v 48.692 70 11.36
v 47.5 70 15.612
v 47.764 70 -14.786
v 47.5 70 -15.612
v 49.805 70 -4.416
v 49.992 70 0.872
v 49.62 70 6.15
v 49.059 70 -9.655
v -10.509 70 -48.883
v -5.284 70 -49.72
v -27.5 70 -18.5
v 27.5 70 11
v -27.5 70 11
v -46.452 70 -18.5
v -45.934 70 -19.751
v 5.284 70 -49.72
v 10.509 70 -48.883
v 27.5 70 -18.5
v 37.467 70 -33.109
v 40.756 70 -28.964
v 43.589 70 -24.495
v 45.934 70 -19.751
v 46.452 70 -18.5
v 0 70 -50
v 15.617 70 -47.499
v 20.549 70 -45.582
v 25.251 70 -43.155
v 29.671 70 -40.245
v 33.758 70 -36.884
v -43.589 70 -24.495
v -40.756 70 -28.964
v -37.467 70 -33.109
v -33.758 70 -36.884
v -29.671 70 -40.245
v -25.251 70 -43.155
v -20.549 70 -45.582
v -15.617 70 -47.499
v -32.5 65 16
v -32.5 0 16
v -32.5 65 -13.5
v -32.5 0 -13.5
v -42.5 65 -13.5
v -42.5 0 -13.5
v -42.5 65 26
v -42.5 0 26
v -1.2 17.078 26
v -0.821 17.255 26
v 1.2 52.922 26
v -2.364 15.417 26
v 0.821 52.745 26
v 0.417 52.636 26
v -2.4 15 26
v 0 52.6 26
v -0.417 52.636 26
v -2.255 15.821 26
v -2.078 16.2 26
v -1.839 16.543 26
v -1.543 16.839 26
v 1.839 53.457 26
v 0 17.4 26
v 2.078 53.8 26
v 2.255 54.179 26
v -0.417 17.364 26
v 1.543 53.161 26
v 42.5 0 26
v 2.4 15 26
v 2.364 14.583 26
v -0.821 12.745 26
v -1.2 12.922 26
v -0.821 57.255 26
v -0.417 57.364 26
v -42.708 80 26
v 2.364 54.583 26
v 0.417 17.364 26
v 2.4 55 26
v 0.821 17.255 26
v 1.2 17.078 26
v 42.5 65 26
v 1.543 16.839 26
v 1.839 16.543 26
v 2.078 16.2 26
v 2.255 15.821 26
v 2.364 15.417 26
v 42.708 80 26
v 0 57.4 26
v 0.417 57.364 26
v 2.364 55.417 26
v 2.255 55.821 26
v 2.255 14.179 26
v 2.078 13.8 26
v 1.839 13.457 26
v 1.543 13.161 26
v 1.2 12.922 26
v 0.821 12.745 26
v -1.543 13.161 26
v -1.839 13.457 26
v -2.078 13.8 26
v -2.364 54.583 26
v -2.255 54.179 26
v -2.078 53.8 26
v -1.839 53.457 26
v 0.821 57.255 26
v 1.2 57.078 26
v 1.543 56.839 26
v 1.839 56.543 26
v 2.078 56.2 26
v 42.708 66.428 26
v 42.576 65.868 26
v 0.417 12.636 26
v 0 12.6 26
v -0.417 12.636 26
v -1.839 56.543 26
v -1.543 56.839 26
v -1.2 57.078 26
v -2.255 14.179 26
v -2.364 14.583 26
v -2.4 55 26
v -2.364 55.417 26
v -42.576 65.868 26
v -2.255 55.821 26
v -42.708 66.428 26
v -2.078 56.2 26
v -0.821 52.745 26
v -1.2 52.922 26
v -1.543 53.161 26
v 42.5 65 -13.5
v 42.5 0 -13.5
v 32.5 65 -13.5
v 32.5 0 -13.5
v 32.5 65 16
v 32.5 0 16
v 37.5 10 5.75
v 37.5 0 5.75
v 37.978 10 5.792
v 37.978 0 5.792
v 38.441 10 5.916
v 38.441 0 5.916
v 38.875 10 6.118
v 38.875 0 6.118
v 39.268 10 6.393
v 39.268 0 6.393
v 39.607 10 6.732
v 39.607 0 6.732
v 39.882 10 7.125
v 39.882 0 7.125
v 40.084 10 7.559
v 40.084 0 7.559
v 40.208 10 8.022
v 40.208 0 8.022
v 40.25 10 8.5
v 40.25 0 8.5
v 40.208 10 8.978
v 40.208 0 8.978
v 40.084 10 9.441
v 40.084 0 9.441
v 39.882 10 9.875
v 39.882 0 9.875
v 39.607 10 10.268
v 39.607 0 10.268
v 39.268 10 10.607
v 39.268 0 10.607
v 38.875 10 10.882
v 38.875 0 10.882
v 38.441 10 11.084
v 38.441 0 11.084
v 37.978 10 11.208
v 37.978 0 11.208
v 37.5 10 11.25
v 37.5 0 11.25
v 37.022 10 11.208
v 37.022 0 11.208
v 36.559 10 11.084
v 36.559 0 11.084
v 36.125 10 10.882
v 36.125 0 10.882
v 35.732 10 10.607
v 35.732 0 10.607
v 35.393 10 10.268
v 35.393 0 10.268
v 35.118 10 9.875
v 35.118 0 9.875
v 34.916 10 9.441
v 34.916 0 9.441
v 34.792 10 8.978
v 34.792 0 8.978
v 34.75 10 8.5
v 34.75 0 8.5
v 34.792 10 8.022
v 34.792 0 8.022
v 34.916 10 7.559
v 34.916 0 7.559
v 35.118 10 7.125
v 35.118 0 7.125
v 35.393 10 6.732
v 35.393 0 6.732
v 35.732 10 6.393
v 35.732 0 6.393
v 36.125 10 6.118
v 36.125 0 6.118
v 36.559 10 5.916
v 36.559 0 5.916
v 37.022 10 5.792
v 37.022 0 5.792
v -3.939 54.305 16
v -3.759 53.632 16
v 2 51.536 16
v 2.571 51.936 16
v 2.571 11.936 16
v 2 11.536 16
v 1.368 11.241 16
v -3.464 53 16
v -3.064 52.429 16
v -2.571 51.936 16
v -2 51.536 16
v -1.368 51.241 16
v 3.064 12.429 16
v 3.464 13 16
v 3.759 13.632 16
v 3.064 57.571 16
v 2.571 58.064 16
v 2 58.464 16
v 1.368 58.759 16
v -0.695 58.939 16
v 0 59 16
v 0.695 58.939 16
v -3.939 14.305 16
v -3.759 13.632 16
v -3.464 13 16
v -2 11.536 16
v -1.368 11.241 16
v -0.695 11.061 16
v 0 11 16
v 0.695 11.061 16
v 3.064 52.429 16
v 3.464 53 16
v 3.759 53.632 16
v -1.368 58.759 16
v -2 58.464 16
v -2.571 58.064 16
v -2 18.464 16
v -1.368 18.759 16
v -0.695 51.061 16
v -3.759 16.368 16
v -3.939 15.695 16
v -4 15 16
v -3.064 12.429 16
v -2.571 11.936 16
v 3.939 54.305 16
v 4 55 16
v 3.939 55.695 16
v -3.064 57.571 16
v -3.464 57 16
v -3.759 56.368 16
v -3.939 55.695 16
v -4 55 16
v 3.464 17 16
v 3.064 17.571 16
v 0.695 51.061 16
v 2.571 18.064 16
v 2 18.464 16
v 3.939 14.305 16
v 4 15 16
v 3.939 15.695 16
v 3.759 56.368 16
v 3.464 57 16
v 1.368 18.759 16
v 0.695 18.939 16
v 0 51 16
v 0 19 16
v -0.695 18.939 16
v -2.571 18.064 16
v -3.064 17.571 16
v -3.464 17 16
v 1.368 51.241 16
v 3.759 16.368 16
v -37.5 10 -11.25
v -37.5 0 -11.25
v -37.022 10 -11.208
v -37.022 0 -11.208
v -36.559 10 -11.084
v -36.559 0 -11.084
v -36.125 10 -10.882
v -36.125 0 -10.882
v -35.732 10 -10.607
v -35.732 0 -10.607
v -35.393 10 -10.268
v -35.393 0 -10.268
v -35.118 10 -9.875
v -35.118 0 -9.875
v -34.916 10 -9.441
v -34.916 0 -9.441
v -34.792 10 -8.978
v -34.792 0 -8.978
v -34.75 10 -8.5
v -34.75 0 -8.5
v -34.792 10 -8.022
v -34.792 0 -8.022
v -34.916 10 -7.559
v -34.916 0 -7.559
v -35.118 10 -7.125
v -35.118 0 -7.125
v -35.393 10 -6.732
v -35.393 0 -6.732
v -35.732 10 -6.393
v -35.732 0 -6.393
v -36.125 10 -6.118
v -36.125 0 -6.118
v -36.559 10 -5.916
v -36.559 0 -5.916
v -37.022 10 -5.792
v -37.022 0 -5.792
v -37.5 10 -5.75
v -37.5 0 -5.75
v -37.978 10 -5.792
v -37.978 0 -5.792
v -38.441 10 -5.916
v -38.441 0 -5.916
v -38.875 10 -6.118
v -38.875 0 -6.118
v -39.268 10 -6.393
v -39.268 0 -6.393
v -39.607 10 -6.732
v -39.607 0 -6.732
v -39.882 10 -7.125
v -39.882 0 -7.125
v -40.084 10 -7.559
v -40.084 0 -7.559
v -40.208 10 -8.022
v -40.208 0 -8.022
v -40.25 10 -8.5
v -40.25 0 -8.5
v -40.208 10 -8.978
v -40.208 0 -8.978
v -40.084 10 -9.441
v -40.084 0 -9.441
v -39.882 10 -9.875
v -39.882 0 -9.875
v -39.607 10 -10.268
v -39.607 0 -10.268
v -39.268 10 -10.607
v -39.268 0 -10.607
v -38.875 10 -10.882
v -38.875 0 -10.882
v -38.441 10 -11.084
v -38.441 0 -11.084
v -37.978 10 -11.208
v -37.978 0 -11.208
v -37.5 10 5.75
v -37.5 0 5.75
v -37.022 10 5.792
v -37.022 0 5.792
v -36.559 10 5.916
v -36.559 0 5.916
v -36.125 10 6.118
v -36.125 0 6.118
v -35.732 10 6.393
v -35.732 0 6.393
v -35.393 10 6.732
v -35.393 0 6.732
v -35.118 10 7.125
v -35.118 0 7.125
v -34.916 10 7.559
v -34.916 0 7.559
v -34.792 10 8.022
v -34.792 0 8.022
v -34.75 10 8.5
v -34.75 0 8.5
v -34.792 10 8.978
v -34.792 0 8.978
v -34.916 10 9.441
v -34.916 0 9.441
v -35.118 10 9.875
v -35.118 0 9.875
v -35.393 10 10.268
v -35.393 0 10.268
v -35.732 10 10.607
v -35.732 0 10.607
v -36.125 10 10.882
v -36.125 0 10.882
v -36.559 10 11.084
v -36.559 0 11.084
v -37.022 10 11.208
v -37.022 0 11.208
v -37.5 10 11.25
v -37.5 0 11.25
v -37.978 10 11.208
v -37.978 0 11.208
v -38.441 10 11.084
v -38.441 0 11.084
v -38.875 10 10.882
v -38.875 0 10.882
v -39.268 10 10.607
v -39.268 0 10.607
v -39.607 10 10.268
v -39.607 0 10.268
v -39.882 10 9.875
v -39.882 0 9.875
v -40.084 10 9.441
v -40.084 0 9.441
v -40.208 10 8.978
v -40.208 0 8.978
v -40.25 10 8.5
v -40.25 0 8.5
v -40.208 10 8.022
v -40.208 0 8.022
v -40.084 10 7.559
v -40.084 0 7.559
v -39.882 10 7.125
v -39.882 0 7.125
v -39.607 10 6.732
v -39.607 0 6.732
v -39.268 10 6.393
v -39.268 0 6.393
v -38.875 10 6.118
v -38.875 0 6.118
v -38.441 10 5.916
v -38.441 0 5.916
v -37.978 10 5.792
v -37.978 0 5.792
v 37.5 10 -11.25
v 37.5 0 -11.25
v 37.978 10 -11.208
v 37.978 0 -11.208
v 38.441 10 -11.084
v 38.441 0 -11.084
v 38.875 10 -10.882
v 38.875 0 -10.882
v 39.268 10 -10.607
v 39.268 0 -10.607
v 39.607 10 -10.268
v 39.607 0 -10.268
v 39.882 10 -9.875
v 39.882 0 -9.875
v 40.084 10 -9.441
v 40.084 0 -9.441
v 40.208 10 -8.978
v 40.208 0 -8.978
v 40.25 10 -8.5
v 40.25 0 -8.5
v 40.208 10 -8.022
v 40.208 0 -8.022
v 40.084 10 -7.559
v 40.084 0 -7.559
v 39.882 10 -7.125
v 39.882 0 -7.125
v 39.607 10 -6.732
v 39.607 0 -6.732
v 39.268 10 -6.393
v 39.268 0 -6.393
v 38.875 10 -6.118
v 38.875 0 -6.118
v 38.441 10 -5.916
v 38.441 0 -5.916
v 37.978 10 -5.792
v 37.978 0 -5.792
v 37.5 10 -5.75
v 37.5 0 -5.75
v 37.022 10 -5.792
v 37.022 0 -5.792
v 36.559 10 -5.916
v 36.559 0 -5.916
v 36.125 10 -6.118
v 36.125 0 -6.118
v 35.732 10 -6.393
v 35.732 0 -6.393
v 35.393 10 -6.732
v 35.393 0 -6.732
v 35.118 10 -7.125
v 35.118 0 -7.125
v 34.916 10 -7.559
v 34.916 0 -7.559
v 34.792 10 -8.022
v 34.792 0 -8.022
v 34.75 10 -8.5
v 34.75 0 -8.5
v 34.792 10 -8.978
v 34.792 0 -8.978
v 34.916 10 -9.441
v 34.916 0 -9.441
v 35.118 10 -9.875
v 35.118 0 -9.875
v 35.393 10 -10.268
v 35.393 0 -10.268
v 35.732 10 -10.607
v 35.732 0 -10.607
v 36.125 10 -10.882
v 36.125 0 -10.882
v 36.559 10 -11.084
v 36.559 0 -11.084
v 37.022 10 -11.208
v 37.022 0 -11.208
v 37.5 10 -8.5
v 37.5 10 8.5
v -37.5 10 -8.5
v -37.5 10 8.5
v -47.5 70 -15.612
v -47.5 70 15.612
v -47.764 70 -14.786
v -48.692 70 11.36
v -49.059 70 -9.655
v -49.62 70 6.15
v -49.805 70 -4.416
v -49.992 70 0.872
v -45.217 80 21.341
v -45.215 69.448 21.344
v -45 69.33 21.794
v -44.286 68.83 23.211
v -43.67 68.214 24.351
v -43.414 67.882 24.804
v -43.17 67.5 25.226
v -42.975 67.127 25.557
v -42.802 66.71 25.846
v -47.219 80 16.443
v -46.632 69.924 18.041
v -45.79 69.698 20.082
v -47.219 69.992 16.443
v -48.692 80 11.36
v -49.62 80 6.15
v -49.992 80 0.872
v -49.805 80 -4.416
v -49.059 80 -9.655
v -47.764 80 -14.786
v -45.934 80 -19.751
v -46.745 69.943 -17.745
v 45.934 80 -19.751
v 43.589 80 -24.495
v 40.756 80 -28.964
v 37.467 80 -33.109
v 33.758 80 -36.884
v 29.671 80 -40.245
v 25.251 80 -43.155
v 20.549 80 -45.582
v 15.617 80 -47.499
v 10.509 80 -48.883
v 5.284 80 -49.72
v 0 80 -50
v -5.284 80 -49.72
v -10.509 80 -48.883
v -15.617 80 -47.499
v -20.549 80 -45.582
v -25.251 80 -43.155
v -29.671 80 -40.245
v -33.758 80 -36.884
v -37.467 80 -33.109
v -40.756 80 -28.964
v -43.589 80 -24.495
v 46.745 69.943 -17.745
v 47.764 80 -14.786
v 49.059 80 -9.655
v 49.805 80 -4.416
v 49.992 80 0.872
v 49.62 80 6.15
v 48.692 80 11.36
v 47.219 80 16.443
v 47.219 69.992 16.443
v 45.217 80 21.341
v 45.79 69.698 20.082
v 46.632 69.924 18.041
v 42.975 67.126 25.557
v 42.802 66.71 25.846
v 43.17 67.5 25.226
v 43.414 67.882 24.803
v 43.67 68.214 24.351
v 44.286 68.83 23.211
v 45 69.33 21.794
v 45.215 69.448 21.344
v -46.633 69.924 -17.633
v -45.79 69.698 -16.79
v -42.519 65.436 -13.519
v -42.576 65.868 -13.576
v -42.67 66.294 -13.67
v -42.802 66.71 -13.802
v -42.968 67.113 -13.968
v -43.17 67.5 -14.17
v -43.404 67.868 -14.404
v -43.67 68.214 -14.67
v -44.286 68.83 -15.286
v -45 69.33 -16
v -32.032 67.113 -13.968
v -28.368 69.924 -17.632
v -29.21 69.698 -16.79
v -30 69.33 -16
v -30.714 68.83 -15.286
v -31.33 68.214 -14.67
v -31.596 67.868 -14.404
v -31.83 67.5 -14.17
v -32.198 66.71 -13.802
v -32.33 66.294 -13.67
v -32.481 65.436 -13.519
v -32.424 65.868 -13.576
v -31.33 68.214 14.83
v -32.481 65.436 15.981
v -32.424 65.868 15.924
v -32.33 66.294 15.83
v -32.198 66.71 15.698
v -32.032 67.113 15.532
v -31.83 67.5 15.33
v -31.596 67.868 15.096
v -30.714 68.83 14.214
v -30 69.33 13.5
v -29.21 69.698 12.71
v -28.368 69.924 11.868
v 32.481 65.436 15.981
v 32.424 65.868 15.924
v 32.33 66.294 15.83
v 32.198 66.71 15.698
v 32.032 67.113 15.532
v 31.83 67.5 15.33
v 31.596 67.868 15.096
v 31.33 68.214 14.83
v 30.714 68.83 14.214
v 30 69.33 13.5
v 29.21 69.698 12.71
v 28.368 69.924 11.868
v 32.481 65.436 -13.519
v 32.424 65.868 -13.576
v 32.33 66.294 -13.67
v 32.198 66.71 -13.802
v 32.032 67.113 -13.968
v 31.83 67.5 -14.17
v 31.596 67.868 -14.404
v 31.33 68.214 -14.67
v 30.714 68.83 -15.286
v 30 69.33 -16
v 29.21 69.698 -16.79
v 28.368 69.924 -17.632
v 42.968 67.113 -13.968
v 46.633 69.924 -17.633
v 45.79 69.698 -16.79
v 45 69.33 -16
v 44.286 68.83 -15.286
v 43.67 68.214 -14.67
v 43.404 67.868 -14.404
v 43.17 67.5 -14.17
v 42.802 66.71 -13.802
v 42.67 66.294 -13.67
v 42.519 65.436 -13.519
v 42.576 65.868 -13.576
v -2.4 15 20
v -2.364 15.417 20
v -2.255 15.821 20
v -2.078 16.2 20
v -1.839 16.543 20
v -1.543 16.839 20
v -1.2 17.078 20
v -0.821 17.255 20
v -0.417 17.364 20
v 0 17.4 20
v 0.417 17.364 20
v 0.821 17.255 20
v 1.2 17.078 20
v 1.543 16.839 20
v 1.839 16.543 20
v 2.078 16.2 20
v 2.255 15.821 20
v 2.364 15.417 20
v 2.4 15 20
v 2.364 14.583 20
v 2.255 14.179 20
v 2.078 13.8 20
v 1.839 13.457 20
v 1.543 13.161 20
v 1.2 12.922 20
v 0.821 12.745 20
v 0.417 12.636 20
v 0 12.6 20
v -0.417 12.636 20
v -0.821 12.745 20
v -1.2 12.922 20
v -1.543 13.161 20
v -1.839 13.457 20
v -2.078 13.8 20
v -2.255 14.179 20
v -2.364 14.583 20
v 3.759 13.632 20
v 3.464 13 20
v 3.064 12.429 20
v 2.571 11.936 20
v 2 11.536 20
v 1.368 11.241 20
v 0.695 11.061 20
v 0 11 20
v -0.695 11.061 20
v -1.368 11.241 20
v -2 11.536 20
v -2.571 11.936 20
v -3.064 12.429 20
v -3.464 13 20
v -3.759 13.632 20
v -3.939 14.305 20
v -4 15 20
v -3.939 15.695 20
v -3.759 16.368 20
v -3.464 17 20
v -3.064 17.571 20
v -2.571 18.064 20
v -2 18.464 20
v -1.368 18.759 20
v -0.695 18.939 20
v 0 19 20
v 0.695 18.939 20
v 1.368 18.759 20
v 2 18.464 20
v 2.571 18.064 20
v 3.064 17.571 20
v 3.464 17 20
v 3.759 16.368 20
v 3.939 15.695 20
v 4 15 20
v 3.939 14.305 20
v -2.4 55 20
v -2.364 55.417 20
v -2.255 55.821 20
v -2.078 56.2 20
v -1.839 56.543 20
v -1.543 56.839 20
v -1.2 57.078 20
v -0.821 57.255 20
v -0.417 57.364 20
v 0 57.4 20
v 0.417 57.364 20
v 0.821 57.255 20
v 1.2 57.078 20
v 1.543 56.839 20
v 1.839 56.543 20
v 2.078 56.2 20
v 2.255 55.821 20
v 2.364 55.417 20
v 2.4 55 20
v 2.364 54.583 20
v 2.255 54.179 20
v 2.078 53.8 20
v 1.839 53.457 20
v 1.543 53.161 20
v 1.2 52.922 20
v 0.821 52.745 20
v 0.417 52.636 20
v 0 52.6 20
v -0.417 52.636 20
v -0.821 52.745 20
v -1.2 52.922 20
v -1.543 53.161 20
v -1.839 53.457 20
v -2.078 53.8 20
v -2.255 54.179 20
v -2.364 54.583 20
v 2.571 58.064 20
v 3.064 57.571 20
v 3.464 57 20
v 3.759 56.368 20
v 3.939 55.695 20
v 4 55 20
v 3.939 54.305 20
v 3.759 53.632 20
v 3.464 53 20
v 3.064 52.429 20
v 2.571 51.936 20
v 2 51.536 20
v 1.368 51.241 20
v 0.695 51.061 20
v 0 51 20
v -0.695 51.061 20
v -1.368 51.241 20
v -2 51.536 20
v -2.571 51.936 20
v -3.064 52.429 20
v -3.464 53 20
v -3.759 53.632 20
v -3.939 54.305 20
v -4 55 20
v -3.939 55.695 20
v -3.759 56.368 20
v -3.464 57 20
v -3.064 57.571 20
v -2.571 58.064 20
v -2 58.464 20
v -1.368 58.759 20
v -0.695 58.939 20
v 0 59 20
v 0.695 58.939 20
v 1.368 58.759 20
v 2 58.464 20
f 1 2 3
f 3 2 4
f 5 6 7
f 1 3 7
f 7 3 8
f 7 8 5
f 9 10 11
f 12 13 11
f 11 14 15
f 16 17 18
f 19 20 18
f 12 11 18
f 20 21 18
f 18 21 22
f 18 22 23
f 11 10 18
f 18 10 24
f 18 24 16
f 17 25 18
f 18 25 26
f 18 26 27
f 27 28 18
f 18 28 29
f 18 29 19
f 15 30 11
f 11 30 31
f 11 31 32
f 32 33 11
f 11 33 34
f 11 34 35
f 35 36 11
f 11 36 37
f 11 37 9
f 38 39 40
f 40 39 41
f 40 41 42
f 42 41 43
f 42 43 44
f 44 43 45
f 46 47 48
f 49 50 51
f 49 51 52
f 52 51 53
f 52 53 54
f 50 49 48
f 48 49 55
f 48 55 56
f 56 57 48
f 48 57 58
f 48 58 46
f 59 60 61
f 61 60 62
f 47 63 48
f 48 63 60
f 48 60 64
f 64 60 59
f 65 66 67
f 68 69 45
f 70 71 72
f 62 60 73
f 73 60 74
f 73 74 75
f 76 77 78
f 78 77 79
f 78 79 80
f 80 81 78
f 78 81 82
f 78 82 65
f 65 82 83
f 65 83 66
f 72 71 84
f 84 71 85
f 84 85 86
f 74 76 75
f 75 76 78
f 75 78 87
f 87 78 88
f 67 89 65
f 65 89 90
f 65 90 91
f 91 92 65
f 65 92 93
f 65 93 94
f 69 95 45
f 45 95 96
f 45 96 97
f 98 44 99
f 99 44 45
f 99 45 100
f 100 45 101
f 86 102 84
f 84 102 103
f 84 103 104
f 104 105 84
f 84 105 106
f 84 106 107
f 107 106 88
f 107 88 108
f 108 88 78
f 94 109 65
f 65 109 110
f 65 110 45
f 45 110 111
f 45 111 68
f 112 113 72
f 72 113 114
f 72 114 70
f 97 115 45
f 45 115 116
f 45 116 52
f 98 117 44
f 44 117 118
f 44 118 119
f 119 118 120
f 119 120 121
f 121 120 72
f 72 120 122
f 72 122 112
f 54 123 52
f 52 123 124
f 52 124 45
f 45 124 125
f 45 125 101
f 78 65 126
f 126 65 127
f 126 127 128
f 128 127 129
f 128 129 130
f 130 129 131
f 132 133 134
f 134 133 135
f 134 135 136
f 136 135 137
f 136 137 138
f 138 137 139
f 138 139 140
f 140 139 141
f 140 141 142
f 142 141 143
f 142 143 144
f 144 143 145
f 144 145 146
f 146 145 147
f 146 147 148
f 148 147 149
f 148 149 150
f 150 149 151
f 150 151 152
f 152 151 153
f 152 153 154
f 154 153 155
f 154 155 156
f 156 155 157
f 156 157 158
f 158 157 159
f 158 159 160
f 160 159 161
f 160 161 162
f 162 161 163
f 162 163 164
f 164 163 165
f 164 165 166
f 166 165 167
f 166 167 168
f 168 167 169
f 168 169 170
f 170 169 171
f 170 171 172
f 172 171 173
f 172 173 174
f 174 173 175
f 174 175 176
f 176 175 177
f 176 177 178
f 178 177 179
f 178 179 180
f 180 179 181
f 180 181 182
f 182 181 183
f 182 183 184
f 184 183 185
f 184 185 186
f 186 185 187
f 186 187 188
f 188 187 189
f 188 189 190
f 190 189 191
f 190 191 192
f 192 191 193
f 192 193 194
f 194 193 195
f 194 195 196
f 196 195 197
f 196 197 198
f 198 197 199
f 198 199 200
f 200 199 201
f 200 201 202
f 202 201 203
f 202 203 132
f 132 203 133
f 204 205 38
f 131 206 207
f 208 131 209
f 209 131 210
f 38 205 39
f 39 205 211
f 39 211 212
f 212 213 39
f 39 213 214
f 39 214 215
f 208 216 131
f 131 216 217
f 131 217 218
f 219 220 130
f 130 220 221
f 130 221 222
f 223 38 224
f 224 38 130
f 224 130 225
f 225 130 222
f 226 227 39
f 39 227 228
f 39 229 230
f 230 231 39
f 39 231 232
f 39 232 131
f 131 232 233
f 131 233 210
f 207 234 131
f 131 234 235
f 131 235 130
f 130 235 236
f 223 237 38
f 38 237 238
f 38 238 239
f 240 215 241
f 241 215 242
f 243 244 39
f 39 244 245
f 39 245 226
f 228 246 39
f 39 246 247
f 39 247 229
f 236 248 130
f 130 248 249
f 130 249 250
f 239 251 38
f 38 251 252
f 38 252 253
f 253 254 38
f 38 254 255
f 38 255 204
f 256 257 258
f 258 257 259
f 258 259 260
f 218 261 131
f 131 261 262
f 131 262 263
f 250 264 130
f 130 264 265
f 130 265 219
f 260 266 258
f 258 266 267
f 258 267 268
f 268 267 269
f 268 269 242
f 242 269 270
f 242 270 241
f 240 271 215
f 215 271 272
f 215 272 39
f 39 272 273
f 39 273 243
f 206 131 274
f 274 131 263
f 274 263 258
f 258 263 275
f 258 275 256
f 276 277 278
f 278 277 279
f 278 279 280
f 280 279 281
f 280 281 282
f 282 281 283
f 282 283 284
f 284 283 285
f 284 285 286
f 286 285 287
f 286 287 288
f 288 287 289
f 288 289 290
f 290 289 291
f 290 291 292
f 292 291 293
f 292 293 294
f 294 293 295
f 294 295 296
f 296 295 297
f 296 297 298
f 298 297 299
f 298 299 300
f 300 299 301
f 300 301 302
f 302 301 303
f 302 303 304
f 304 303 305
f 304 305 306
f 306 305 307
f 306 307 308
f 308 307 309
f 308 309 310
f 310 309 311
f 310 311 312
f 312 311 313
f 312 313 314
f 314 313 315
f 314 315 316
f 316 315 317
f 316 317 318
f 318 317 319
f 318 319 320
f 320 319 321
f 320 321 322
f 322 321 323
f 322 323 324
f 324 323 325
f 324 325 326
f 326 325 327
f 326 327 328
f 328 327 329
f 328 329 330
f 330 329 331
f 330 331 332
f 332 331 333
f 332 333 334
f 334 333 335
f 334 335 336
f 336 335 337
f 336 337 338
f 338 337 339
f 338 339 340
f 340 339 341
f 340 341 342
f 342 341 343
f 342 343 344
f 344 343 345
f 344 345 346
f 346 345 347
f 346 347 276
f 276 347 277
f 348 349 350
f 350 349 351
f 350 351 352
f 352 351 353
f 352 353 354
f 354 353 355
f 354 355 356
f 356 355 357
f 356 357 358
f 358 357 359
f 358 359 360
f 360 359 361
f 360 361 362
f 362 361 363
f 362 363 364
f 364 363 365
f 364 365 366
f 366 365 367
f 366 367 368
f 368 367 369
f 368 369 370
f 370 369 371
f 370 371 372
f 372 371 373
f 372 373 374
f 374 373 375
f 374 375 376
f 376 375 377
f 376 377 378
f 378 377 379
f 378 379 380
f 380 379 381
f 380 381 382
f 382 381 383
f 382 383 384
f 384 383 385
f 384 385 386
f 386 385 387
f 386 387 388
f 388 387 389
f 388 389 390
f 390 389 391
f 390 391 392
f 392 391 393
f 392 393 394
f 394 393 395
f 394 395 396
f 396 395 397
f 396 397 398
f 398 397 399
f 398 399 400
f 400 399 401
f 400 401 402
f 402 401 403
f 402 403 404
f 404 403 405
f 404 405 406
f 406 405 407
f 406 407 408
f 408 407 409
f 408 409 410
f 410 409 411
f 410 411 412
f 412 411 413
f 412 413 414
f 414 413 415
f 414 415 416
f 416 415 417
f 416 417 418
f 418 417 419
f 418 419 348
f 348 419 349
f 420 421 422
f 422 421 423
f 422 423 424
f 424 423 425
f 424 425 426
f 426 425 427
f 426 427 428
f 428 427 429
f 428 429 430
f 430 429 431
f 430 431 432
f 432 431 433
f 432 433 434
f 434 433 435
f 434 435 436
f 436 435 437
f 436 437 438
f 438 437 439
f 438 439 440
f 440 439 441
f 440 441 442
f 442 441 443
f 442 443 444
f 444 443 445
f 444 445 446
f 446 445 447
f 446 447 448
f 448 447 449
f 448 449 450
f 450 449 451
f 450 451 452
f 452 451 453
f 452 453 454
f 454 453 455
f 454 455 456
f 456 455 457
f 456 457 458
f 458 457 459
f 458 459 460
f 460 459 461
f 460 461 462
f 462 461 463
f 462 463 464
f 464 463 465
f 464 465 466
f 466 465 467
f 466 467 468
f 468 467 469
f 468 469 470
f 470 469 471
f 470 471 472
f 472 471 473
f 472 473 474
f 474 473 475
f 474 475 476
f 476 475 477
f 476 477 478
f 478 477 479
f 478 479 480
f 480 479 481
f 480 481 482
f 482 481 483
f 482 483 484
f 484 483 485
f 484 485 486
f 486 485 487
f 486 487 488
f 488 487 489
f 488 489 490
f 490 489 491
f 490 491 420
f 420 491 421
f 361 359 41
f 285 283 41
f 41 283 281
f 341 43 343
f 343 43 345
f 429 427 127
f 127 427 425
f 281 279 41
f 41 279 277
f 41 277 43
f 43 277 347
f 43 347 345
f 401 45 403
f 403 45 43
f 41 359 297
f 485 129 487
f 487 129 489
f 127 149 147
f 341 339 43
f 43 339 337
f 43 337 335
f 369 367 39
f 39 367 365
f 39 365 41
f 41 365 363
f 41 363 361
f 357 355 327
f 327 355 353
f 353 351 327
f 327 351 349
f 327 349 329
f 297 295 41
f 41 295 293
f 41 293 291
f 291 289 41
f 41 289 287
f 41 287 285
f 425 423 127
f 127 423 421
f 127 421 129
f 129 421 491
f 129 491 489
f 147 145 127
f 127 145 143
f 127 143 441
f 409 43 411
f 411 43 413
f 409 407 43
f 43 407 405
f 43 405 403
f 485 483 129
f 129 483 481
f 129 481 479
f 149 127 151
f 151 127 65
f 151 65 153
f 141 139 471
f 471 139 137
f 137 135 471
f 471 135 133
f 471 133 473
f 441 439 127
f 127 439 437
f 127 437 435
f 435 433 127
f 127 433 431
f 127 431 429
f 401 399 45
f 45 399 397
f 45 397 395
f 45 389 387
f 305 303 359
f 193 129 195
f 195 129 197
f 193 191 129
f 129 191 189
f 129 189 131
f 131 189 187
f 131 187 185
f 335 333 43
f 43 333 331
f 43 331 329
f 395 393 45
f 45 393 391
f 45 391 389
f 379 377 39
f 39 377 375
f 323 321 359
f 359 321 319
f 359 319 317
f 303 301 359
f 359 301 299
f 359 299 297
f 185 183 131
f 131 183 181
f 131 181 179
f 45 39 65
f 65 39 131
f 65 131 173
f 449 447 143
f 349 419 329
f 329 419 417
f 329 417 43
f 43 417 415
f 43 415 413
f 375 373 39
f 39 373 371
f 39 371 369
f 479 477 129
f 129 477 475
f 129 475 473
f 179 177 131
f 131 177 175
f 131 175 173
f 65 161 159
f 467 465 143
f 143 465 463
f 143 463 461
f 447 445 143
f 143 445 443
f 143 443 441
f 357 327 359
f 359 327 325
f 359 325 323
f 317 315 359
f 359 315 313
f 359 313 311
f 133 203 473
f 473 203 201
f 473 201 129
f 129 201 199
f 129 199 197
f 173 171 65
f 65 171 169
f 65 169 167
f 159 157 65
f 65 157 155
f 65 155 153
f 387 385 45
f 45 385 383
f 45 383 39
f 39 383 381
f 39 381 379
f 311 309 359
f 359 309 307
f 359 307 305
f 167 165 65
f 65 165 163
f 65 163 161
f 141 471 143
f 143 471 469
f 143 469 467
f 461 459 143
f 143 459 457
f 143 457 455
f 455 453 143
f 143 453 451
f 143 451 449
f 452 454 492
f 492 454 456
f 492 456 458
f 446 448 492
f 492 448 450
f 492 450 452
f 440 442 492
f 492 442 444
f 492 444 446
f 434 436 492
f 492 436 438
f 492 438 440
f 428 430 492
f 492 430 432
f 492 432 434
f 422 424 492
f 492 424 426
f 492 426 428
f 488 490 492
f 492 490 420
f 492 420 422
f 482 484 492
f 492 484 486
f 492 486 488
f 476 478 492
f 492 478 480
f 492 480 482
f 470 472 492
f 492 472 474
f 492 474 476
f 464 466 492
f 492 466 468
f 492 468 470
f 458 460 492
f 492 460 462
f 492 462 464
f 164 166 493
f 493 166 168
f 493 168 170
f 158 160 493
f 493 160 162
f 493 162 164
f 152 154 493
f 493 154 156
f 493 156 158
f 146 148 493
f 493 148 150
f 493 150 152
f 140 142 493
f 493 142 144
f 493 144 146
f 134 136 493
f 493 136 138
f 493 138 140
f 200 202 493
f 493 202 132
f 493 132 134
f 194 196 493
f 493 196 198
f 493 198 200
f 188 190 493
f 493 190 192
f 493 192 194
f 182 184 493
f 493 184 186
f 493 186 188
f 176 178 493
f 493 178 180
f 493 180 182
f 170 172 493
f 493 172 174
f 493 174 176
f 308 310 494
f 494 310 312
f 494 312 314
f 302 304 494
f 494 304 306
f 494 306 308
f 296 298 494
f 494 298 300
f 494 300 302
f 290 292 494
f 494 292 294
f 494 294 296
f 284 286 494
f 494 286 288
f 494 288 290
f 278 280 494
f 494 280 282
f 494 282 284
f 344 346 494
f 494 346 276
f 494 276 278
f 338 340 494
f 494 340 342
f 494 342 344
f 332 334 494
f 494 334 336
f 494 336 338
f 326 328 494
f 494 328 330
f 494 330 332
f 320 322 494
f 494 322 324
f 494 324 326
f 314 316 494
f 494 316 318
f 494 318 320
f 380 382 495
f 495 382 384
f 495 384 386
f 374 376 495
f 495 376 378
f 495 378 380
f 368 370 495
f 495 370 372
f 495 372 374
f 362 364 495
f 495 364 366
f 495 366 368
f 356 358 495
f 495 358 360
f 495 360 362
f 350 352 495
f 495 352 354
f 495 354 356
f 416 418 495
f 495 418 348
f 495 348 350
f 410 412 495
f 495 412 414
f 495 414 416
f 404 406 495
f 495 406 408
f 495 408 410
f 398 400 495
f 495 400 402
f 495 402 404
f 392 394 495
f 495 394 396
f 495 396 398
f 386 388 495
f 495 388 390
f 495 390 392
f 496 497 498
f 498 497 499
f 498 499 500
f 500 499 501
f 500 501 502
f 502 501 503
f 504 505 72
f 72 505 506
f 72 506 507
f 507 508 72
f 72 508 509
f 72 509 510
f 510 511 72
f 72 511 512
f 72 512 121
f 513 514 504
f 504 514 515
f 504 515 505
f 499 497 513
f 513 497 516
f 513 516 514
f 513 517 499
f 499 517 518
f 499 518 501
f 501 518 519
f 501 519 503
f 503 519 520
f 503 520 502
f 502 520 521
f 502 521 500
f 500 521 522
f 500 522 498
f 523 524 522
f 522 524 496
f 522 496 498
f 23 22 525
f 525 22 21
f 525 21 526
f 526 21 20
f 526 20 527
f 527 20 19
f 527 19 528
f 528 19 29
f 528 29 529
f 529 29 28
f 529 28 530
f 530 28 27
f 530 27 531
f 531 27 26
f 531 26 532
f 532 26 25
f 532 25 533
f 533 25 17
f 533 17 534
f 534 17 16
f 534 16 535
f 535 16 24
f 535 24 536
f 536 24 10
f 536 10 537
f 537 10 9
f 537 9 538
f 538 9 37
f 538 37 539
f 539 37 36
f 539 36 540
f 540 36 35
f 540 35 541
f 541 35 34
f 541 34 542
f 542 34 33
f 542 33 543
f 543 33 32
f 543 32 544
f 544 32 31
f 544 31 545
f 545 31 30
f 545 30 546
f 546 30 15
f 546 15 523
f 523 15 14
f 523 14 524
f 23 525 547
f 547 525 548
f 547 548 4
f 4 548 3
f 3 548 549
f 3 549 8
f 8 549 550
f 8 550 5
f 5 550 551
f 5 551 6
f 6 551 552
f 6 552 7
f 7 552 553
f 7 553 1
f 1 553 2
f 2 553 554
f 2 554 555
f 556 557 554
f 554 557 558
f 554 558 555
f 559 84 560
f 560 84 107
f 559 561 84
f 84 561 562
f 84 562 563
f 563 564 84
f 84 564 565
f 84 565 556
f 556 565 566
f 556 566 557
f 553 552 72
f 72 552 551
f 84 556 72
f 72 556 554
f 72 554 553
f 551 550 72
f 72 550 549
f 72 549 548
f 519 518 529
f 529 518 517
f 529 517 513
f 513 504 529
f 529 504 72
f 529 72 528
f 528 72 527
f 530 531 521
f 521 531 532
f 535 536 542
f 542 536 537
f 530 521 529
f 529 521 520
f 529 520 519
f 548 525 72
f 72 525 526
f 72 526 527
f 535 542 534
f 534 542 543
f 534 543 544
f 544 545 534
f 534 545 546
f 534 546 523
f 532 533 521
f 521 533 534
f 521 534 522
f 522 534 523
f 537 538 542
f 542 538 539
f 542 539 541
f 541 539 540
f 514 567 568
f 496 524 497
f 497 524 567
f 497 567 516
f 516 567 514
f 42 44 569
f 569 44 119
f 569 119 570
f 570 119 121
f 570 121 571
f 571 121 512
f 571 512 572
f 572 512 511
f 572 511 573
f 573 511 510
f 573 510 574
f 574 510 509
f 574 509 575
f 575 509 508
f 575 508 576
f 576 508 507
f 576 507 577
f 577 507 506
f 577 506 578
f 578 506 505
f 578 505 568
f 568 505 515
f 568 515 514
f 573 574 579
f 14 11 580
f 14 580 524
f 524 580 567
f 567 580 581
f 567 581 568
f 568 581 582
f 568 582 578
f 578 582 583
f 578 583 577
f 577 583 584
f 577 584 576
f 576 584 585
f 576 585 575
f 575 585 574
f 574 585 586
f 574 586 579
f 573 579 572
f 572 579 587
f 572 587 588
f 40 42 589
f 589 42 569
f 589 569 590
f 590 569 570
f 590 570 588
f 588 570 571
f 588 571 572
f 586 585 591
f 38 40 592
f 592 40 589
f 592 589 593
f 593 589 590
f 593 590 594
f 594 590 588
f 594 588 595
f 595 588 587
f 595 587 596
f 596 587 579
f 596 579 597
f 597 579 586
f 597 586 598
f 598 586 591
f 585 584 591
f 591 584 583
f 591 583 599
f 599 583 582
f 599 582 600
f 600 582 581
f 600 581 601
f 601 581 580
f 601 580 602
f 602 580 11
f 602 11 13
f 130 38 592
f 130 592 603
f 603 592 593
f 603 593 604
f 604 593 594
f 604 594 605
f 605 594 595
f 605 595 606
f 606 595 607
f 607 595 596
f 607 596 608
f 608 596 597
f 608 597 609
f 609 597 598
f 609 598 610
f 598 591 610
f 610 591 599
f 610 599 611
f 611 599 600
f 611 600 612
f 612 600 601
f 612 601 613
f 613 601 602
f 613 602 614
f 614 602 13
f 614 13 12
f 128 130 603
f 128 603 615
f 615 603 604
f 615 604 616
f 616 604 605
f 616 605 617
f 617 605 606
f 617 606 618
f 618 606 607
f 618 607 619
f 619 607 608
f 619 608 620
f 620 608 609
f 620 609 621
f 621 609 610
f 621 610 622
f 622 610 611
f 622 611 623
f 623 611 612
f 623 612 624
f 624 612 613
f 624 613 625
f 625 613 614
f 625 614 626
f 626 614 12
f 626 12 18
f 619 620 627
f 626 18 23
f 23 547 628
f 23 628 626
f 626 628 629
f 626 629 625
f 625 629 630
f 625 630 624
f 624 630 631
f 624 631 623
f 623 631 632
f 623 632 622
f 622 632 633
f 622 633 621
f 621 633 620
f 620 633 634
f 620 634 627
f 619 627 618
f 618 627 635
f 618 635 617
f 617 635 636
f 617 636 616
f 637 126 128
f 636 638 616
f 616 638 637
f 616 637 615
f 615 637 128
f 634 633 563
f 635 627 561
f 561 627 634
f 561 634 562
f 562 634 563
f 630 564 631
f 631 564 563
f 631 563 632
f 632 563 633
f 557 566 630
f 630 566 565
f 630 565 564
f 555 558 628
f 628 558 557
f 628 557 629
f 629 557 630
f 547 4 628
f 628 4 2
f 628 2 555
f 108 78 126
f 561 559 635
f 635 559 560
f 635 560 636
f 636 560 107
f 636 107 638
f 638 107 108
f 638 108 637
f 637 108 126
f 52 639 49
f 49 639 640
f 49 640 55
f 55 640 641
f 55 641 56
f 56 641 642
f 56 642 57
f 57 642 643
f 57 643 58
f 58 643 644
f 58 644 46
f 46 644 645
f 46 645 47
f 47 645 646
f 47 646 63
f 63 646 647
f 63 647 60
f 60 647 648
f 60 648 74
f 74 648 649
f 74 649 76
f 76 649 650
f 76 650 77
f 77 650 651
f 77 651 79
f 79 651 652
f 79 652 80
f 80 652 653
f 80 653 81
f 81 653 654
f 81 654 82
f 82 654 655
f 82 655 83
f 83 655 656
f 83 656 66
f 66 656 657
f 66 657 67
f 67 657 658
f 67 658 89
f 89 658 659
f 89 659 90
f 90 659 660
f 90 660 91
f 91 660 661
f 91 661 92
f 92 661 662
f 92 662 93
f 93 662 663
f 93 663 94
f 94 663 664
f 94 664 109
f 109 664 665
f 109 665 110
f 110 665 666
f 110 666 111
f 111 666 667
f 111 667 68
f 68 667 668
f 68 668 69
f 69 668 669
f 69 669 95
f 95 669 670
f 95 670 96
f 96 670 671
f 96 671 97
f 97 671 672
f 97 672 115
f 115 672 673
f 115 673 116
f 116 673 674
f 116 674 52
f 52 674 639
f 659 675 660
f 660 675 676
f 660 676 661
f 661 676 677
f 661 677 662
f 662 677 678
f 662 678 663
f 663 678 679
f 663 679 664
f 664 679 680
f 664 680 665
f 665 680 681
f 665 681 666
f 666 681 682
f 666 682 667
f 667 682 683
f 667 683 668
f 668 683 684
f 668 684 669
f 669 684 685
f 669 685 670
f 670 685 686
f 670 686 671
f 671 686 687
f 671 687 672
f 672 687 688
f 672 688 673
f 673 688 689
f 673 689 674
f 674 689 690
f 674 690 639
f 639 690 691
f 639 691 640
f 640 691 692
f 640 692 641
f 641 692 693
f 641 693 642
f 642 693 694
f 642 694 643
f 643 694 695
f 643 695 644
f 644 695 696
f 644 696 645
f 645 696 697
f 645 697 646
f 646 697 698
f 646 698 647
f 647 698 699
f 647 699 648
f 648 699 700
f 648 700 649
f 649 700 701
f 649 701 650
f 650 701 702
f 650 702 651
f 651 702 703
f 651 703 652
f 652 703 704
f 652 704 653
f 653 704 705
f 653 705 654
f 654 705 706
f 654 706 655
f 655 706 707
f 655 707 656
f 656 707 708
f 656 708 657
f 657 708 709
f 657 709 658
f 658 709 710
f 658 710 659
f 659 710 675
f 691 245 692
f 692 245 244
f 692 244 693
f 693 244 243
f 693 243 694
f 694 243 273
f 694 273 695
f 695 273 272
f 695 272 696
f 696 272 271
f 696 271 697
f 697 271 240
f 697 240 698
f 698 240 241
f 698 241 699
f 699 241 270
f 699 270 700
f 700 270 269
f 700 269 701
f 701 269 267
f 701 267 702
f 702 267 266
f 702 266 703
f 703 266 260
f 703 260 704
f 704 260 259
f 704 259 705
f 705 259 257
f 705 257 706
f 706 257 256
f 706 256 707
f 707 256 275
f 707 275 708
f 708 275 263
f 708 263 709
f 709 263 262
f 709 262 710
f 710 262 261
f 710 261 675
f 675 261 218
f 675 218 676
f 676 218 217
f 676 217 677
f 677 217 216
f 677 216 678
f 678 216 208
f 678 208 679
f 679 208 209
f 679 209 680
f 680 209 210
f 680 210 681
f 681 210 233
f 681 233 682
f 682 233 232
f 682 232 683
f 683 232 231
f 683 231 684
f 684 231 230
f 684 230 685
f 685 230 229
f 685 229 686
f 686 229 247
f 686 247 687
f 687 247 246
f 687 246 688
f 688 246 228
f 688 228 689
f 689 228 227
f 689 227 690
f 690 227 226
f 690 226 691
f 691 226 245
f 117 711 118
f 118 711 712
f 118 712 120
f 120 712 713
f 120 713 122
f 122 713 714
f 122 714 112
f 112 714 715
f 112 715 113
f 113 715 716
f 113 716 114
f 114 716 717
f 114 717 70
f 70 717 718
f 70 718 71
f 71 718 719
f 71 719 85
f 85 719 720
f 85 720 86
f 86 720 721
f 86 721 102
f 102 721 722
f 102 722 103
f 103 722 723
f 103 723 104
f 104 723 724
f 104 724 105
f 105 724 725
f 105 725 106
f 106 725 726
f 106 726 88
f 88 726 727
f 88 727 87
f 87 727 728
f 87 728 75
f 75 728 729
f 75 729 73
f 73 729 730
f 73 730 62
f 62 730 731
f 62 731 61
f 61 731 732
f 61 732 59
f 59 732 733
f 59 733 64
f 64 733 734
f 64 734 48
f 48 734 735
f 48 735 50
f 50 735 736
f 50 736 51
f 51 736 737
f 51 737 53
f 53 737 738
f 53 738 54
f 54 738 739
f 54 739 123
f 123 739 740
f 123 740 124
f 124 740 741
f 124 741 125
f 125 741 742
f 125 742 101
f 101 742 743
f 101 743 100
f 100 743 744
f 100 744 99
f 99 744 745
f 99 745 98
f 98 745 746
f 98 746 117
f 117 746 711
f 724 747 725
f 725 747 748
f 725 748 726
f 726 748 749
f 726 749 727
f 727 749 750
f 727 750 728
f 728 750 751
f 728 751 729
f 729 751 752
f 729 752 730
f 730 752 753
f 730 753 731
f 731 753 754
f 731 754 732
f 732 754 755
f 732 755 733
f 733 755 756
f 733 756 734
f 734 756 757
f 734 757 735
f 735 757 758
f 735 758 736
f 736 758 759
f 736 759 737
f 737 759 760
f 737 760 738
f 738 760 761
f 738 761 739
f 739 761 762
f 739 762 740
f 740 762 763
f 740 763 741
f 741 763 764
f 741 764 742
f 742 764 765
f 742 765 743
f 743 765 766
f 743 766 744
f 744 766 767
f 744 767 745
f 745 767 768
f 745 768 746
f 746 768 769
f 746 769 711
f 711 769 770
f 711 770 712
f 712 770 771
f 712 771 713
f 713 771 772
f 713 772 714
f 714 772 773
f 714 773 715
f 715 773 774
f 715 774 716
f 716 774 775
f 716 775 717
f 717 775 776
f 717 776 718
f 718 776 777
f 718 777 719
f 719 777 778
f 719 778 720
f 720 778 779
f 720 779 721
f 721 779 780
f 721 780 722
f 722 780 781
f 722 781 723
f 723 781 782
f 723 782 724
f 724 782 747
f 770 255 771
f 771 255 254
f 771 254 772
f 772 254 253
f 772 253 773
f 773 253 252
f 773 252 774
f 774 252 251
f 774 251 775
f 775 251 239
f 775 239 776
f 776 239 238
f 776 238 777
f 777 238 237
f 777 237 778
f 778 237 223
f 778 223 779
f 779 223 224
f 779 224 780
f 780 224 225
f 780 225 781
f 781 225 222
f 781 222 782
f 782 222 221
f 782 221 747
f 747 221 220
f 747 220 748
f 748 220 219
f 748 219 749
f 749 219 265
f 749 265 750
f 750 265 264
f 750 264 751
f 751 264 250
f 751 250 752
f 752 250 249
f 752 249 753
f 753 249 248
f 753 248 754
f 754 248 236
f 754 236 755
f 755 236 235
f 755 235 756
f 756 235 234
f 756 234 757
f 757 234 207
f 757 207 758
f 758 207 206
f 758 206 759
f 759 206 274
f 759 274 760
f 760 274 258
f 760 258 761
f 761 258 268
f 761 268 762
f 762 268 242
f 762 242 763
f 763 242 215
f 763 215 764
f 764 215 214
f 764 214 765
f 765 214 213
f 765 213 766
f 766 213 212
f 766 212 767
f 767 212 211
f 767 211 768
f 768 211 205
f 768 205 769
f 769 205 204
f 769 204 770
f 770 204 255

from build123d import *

# Parameters (mm, degrees)
SKETCH1_W                      = 10
SKETCH1_H                      = 29.5
SKETCH1_R                      = 2.75
BOSS_EXTRUDE1_DEPTH            = 10
BOSS_EXTRUDE4_DEPTH            = 60
BOSS_EXTRUDE5_DEPTH            = 10
FILLET2_R                      = 5
CBORE_FOR_M4_SHCS2_D           = 4.8
CBORE_FOR_M4_SHCS2_CBORE_D     = 8
CBORE_FOR_M4_SHCS2_CBORE_DEPTH = 4


with BuildPart() as part:
    # Sketch1 → Boss-Extrude1 (new body)
    # profile 1 of 3: a face of its own
    with BuildSketch(Plane(origin=(0, 0, 0), x_dir=(1, 0, 0), z_dir=(0, 1, 0))):
        with Locations((-37.5, -1.25)):
            Rectangle(SKETCH1_W, SKETCH1_H)
        with Locations(Location((-37.5, -8.5, 0), (0, 0, 270))):
            Circle(SKETCH1_R, mode=Mode.SUBTRACT)
        with Locations(Location((-37.5, 8.5, 0), (0, 0, 270))):
            Circle(SKETCH1_R, mode=Mode.SUBTRACT)
    # profile 2 of 3: a face of its own
    with BuildSketch(Plane(origin=(0, 0, 0), x_dir=(1, 0, 0), z_dir=(0, 1, 0))):
        Polygon((-32.5, -16), (-42.5, -16), (-42.5, -26), (42.5, -26), (42.5, -16), (32.5, -16), align=None)
    # profile 3 of 3: a face of its own
    with BuildSketch(Plane(origin=(0, 0, 0), x_dir=(1, 0, 0), z_dir=(0, 1, 0))):
        with Locations((37.5, -1.25)):
            Rectangle(SKETCH1_W, SKETCH1_H)
        with Locations(Location((37.5, -8.5, 0), (0, 0, 270))):
            Circle(SKETCH1_R, mode=Mode.SUBTRACT)
        with Locations(Location((37.5, 8.5, 0), (0, 0, 270))):
            Circle(SKETCH1_R, mode=Mode.SUBTRACT)
    extrude(amount=BOSS_EXTRUDE1_DEPTH)

    # Sketch6 → Boss-Extrude4 (add)
    with BuildSketch(Plane(origin=(0, 10, 0), x_dir=(1, 0, 0), z_dir=(0, 1, 0))):
        Polygon((-32.5, -16), (-32.5, 13.5), (-42.5, 13.5), (-42.5, -26), (42.5, -26), (42.5, 13.5), (32.5, 13.5), (32.5, -16), align=None)
    extrude(amount=BOSS_EXTRUDE4_DEPTH)

    # Sketch7 → Boss-Extrude5 (add)
    with BuildSketch(Plane(origin=(0, 70, 0), x_dir=(1, 0, 0), z_dir=(0, 1, 0))):
        with BuildLine():
            Line((-42.5, -26), (42.5, -26))
            Line((42.5, -26), (42.708313008, -26))
            ThreePointArc((42.708313008, -26), (0, 50), (-42.708313008, -26))
            Line((-42.708313008, -26), (-42.5, -26))
        make_face()
    extrude(amount=BOSS_EXTRUDE5_DEPTH)

    # Fillet2
    # the kernel refuses this fillet: 5 mm, written as the material it adds along each edge
    with BuildSketch(Plane(origin=(42.5, 70, 26), x_dir=(1, 0, 0), z_dir=(0, 0, -1))) as fillet2_piece_1_section:
        with BuildLine():
            CenterArc((FILLET2_R, FILLET2_R), FILLET2_R, 180, 90)
            Line((0, FILLET2_R), (-FILLET2_R * 0.02, FILLET2_R))
            Line((-FILLET2_R * 0.02, FILLET2_R), (-FILLET2_R * 0.02, -FILLET2_R * 0.02))
            Line((-FILLET2_R * 0.02, -FILLET2_R * 0.02), (FILLET2_R, -FILLET2_R * 0.02))
            Line((FILLET2_R, -FILLET2_R * 0.02), (FILLET2_R, 0))
        make_face()
    fillet2_piece_1 = extrude(amount=39.5, mode=Mode.PRIVATE)
    fillet2_piece_1 = fillet2_piece_1 & Plane(origin=(0, 68.835749357, 0), x_dir=(0.8541662601625051, 0, 0.5199999999999999), z_dir=(0, -1, 0)) * Cylinder(50, 100, mode=Mode.PRIVATE)
    add(fillet2_piece_1)
    with BuildSketch(Plane(origin=(42.5, 70, -13.5), x_dir=(0, 0, -1), z_dir=(-1, 0, 0)), Plane(origin=(-32.5, 70, -13.5), x_dir=(0, 0, -1), z_dir=(-1, 0, 0))) as fillet2_piece_2:
        with BuildLine():
            CenterArc((FILLET2_R, FILLET2_R), FILLET2_R, 180, 90)
            Line((0, FILLET2_R), (-FILLET2_R * 0.02, FILLET2_R))
            Line((-FILLET2_R * 0.02, FILLET2_R), (-FILLET2_R * 0.02, -FILLET2_R * 0.02))
            Line((-FILLET2_R * 0.02, -FILLET2_R * 0.02), (FILLET2_R, -FILLET2_R * 0.02))
            Line((FILLET2_R, -FILLET2_R * 0.02), (FILLET2_R, 0))
        make_face()
    extrude(amount=10)
    with BuildSketch(Plane(origin=(32.5, 70, -13.5), x_dir=(-1, 0, 0), z_dir=(0, 0, 1)), Plane(origin=(-32.5, 70, 16), x_dir=(1, 0, 0), z_dir=(0, 0, -1))) as fillet2_piece_3:
        with BuildLine():
            CenterArc((FILLET2_R, FILLET2_R), FILLET2_R, 180, 90)
            Line((0, FILLET2_R), (-FILLET2_R * 0.02, FILLET2_R))
            Line((-FILLET2_R * 0.02, FILLET2_R), (-FILLET2_R * 0.02, -FILLET2_R * 0.02))
            Line((-FILLET2_R * 0.02, -FILLET2_R * 0.02), (FILLET2_R, -FILLET2_R * 0.02))
            Line((FILLET2_R, -FILLET2_R * 0.02), (FILLET2_R, 0))
        make_face()
    extrude(amount=29.5)
    with BuildSketch(Plane(origin=(32.5, 70, 16), x_dir=(0, 0, -1), z_dir=(-1, 0, 0))) as fillet2_piece_4:
        with BuildLine():
            CenterArc((FILLET2_R, FILLET2_R), FILLET2_R, 180, 90)
            Line((0, FILLET2_R), (-FILLET2_R * 0.02, FILLET2_R))
            Line((-FILLET2_R * 0.02, FILLET2_R), (-FILLET2_R * 0.02, -FILLET2_R * 0.02))
            Line((-FILLET2_R * 0.02, -FILLET2_R * 0.02), (FILLET2_R, -FILLET2_R * 0.02))
            Line((FILLET2_R, -FILLET2_R * 0.02), (FILLET2_R, 0))
        make_face()
    extrude(amount=65)
    with BuildSketch(Plane(origin=(-42.5, 70, -13.5), x_dir=(-1, 0, 0), z_dir=(0, 0, 1))) as fillet2_piece_5_section:
        with BuildLine():
            CenterArc((FILLET2_R, FILLET2_R), FILLET2_R, 180, 90)
            Line((0, FILLET2_R), (-FILLET2_R * 0.02, FILLET2_R))
            Line((-FILLET2_R * 0.02, FILLET2_R), (-FILLET2_R * 0.02, -FILLET2_R * 0.02))
            Line((-FILLET2_R * 0.02, -FILLET2_R * 0.02), (FILLET2_R, -FILLET2_R * 0.02))
            Line((FILLET2_R, -FILLET2_R * 0.02), (FILLET2_R, 0))
        make_face()
    fillet2_piece_5 = extrude(amount=39.5, mode=Mode.PRIVATE)
    fillet2_piece_5 = fillet2_piece_5 & Plane(origin=(0, 68.835749403, 0), x_dir=(0.8541662601625051, 0, 0.5199999999999999), z_dir=(0, -1, 0)) * Cylinder(50, 100, mode=Mode.PRIVATE)
    add(fillet2_piece_5)
    with BuildSketch(Plane(origin=(42.5, 70, 26), x_dir=(1, 0, 0), z_dir=(0, 0, -1))) as fillet2_piece_6a_section:
        with BuildLine():
            CenterArc((FILLET2_R, FILLET2_R), FILLET2_R, 180, 90)
            Line((0, FILLET2_R), (-FILLET2_R * 0.02, FILLET2_R))
            Line((-FILLET2_R * 0.02, FILLET2_R), (-FILLET2_R * 0.02, -FILLET2_R * 0.02))
            Line((-FILLET2_R * 0.02, -FILLET2_R * 0.02), (FILLET2_R, -FILLET2_R * 0.02))
            Line((FILLET2_R, -FILLET2_R * 0.02), (FILLET2_R, 0))
        make_face()
    fillet2_piece_6a = extrude(amount=52, mode=Mode.PRIVATE)
    fillet2_piece_6a = fillet2_piece_6a & Plane(origin=(0, 68.754666654, 0), x_dir=(0.8541662601625051, 0, 0.5199999999999999), z_dir=(0, -1, 0)) * Cylinder(50, 125, mode=Mode.PRIVATE)
    fillet2_piece_6a = split(fillet2_piece_6a, bisect_by=Plane(origin=(43.429472086, 68.754666654, -13.5), z_dir=(0, 0, -1)), keep=Keep.TOP, mode=Mode.PRIVATE)
    with BuildSketch(Plane(origin=(55, 70, -13.5), x_dir=(0, 0, -1), z_dir=(-1, 0, 0))) as fillet2_piece_6b_section:
        with BuildLine():
            CenterArc((FILLET2_R, FILLET2_R), FILLET2_R, 180, 90)
            Line((0, FILLET2_R), (-FILLET2_R * 0.02, FILLET2_R))
            Line((-FILLET2_R * 0.02, FILLET2_R), (-FILLET2_R * 0.02, -FILLET2_R * 0.02))
            Line((-FILLET2_R * 0.02, -FILLET2_R * 0.02), (FILLET2_R, -FILLET2_R * 0.02))
            Line((FILLET2_R, -FILLET2_R * 0.02), (FILLET2_R, 0))
        make_face()
    fillet2_piece_6b = extrude(amount=22.5, mode=Mode.PRIVATE)
    fillet2_piece_6b = fillet2_piece_6b & Plane(origin=(0, 68.82733242, 0), x_dir=(0.8541662601625051, 0, 0.5199999999999999), z_dir=(0, -1, 0)) * Cylinder(50, 65, mode=Mode.PRIVATE)
    fillet2_piece_6b = split(fillet2_piece_6b, bisect_by=Plane(origin=(42.5, 68.82733242, -14.561731355), z_dir=(1, 0, 0)), keep=Keep.TOP, mode=Mode.PRIVATE)
    fillet2_piece_6 = fillet2_piece_6a & fillet2_piece_6b
    add(fillet2_piece_6)
    with BuildSketch(Plane(origin=(42.5, 70, -13.5), x_dir=(0, 0, -1), z_dir=(-1, 0, 0))) as fillet2_piece_7a_section:
        with BuildLine():
            CenterArc((FILLET2_R, FILLET2_R), FILLET2_R, 180, 90)
            Line((0, FILLET2_R), (-FILLET2_R * 0.02, FILLET2_R))
            Line((-FILLET2_R * 0.02, FILLET2_R), (-FILLET2_R * 0.02, -FILLET2_R * 0.02))
            Line((-FILLET2_R * 0.02, -FILLET2_R * 0.02), (FILLET2_R, -FILLET2_R * 0.02))
            Line((FILLET2_R, -FILLET2_R * 0.02), (FILLET2_R, 0))
        make_face()
    fillet2_piece_7a = extrude(amount=22.5, mode=Mode.PRIVATE)
    fillet2_piece_7a = split(fillet2_piece_7a, bisect_by=Plane(origin=(32.5, 68.868024429, -14.631975571), z_dir=(-1, 0, 0)), keep=Keep.TOP, mode=Mode.PRIVATE)
    with BuildSketch(Plane(origin=(32.5, 70, -26), x_dir=(-1, 0, 0), z_dir=(0, 0, 1))) as fillet2_piece_7b_section:
        with BuildLine():
            CenterArc((FILLET2_R, FILLET2_R), FILLET2_R, 180, 90)
            Line((0, FILLET2_R), (-FILLET2_R * 0.02, FILLET2_R))
            Line((-FILLET2_R * 0.02, FILLET2_R), (-FILLET2_R * 0.02, -FILLET2_R * 0.02))
            Line((-FILLET2_R * 0.02, -FILLET2_R * 0.02), (FILLET2_R, -FILLET2_R * 0.02))
            Line((FILLET2_R, -FILLET2_R * 0.02), (FILLET2_R, 0))
        make_face()
    fillet2_piece_7b = extrude(amount=42, mode=Mode.PRIVATE)
    fillet2_piece_7b = split(fillet2_piece_7b, bisect_by=Plane(origin=(31.368024429, 68.868024429, -13.5), z_dir=(0, 0, -1)), keep=Keep.TOP, mode=Mode.PRIVATE)
    fillet2_piece_7 = fillet2_piece_7a & fillet2_piece_7b
    add(fillet2_piece_7)
    with BuildSketch(Plane(origin=(32.5, 70, -13.5), x_dir=(-1, 0, 0), z_dir=(0, 0, 1))) as fillet2_piece_8a_section:
        with BuildLine():
            CenterArc((FILLET2_R, FILLET2_R), FILLET2_R, 180, 90)
            Line((0, FILLET2_R), (-FILLET2_R * 0.02, FILLET2_R))
            Line((-FILLET2_R * 0.02, FILLET2_R), (-FILLET2_R * 0.02, -FILLET2_R * 0.02))
            Line((-FILLET2_R * 0.02, -FILLET2_R * 0.02), (FILLET2_R, -FILLET2_R * 0.02))
            Line((FILLET2_R, -FILLET2_R * 0.02), (FILLET2_R, 0))
        make_face()
    fillet2_piece_8a = extrude(amount=42, mode=Mode.PRIVATE)
    fillet2_piece_8a = split(fillet2_piece_8a, bisect_by=Plane(origin=(31.368024429, 68.868024429, 16), z_dir=(0, 0, 1)), keep=Keep.TOP, mode=Mode.PRIVATE)
    with BuildSketch(Plane(origin=(45, 70, 16), x_dir=(0, 0, -1), z_dir=(-1, 0, 0))) as fillet2_piece_8b_section:
        with BuildLine():
            CenterArc((FILLET2_R, FILLET2_R), FILLET2_R, 180, 90)
            Line((0, FILLET2_R), (-FILLET2_R * 0.02, FILLET2_R))
            Line((-FILLET2_R * 0.02, FILLET2_R), (-FILLET2_R * 0.02, -FILLET2_R * 0.02))
            Line((-FILLET2_R * 0.02, -FILLET2_R * 0.02), (FILLET2_R, -FILLET2_R * 0.02))
            Line((FILLET2_R, -FILLET2_R * 0.02), (FILLET2_R, 0))
        make_face()
    fillet2_piece_8b = extrude(amount=77.5, mode=Mode.PRIVATE)
    fillet2_piece_8b = split(fillet2_piece_8b, bisect_by=Plane(origin=(32.5, 68.868024429, 14.868024429), z_dir=(1, 0, 0)), keep=Keep.TOP, mode=Mode.PRIVATE)
    fillet2_piece_8 = fillet2_piece_8a & fillet2_piece_8b
    add(fillet2_piece_8)
    with BuildSketch(Plane(origin=(32.5, 70, 16), x_dir=(0, 0, -1), z_dir=(-1, 0, 0))) as fillet2_piece_9a_section:
        with BuildLine():
            CenterArc((FILLET2_R, FILLET2_R), FILLET2_R, 180, 90)
            Line((0, FILLET2_R), (-FILLET2_R * 0.02, FILLET2_R))
            Line((-FILLET2_R * 0.02, FILLET2_R), (-FILLET2_R * 0.02, -FILLET2_R * 0.02))
            Line((-FILLET2_R * 0.02, -FILLET2_R * 0.02), (FILLET2_R, -FILLET2_R * 0.02))
            Line((FILLET2_R, -FILLET2_R * 0.02), (FILLET2_R, 0))
        make_face()
    fillet2_piece_9a = extrude(amount=77.5, mode=Mode.PRIVATE)
    fillet2_piece_9a = split(fillet2_piece_9a, bisect_by=Plane(origin=(-32.5, 68.868024429, 14.868024429), z_dir=(-1, 0, 0)), keep=Keep.TOP, mode=Mode.PRIVATE)
    with BuildSketch(Plane(origin=(-32.5, 70, 28.5), x_dir=(1, 0, 0), z_dir=(0, 0, -1))) as fillet2_piece_9b_section:
        with BuildLine():
            CenterArc((FILLET2_R, FILLET2_R), FILLET2_R, 180, 90)
            Line((0, FILLET2_R), (-FILLET2_R * 0.02, FILLET2_R))
            Line((-FILLET2_R * 0.02, FILLET2_R), (-FILLET2_R * 0.02, -FILLET2_R * 0.02))
            Line((-FILLET2_R * 0.02, -FILLET2_R * 0.02), (FILLET2_R, -FILLET2_R * 0.02))
            Line((FILLET2_R, -FILLET2_R * 0.02), (FILLET2_R, 0))
        make_face()
    fillet2_piece_9b = extrude(amount=42, mode=Mode.PRIVATE)
    fillet2_piece_9b = split(fillet2_piece_9b, bisect_by=Plane(origin=(-31.368024429, 68.868024429, 16), z_dir=(0, 0, 1)), keep=Keep.TOP, mode=Mode.PRIVATE)
    fillet2_piece_9 = fillet2_piece_9a & fillet2_piece_9b
    add(fillet2_piece_9)
    with BuildSketch(Plane(origin=(-32.5, 70, 16), x_dir=(1, 0, 0), z_dir=(0, 0, -1))) as fillet2_piece_10a_section:
        with BuildLine():
            CenterArc((FILLET2_R, FILLET2_R), FILLET2_R, 180, 90)
            Line((0, FILLET2_R), (-FILLET2_R * 0.02, FILLET2_R))
            Line((-FILLET2_R * 0.02, FILLET2_R), (-FILLET2_R * 0.02, -FILLET2_R * 0.02))
            Line((-FILLET2_R * 0.02, -FILLET2_R * 0.02), (FILLET2_R, -FILLET2_R * 0.02))
            Line((FILLET2_R, -FILLET2_R * 0.02), (FILLET2_R, 0))
        make_face()
    fillet2_piece_10a = extrude(amount=42, mode=Mode.PRIVATE)
    fillet2_piece_10a = split(fillet2_piece_10a, bisect_by=Plane(origin=(-31.368024429, 68.868024429, -13.5), z_dir=(0, 0, -1)), keep=Keep.TOP, mode=Mode.PRIVATE)
    with BuildSketch(Plane(origin=(-20, 70, -13.5), x_dir=(0, 0, -1), z_dir=(-1, 0, 0))) as fillet2_piece_10b_section:
        with BuildLine():
            CenterArc((FILLET2_R, FILLET2_R), FILLET2_R, 180, 90)
            Line((0, FILLET2_R), (-FILLET2_R * 0.02, FILLET2_R))
            Line((-FILLET2_R * 0.02, FILLET2_R), (-FILLET2_R * 0.02, -FILLET2_R * 0.02))
            Line((-FILLET2_R * 0.02, -FILLET2_R * 0.02), (FILLET2_R, -FILLET2_R * 0.02))
            Line((FILLET2_R, -FILLET2_R * 0.02), (FILLET2_R, 0))
        make_face()
    fillet2_piece_10b = extrude(amount=22.5, mode=Mode.PRIVATE)
    fillet2_piece_10b = split(fillet2_piece_10b, bisect_by=Plane(origin=(-32.5, 68.868024429, -14.631975571), z_dir=(1, 0, 0)), keep=Keep.TOP, mode=Mode.PRIVATE)
    fillet2_piece_10 = fillet2_piece_10a & fillet2_piece_10b
    add(fillet2_piece_10)
    with BuildSketch(Plane(origin=(-32.5, 70, -13.5), x_dir=(0, 0, -1), z_dir=(-1, 0, 0))) as fillet2_piece_11a_section:
        with BuildLine():
            CenterArc((FILLET2_R, FILLET2_R), FILLET2_R, 180, 90)
            Line((0, FILLET2_R), (-FILLET2_R * 0.02, FILLET2_R))
            Line((-FILLET2_R * 0.02, FILLET2_R), (-FILLET2_R * 0.02, -FILLET2_R * 0.02))
            Line((-FILLET2_R * 0.02, -FILLET2_R * 0.02), (FILLET2_R, -FILLET2_R * 0.02))
            Line((FILLET2_R, -FILLET2_R * 0.02), (FILLET2_R, 0))
        make_face()
    fillet2_piece_11a = extrude(amount=22.5, mode=Mode.PRIVATE)
    fillet2_piece_11a = fillet2_piece_11a & Plane(origin=(0, 68.827329448, 0), x_dir=(0.8541662601625051, 0, 0.5199999999999999), z_dir=(0, -1, 0)) * Cylinder(50, 65, mode=Mode.PRIVATE)
    fillet2_piece_11a = split(fillet2_piece_11a, bisect_by=Plane(origin=(-42.5, 68.827329448, -14.561744488), z_dir=(-1, 0, 0)), keep=Keep.TOP, mode=Mode.PRIVATE)
    with BuildSketch(Plane(origin=(-42.5, 70, -26), x_dir=(-1, 0, 0), z_dir=(0, 0, 1))) as fillet2_piece_11b_section:
        with BuildLine():
            CenterArc((FILLET2_R, FILLET2_R), FILLET2_R, 180, 90)
            Line((0, FILLET2_R), (-FILLET2_R * 0.02, FILLET2_R))
            Line((-FILLET2_R * 0.02, FILLET2_R), (-FILLET2_R * 0.02, -FILLET2_R * 0.02))
            Line((-FILLET2_R * 0.02, -FILLET2_R * 0.02), (FILLET2_R, -FILLET2_R * 0.02))
            Line((FILLET2_R, -FILLET2_R * 0.02), (FILLET2_R, 0))
        make_face()
    fillet2_piece_11b = extrude(amount=52, mode=Mode.PRIVATE)
    fillet2_piece_11b = fillet2_piece_11b & Plane(origin=(0, 68.754666545, 0), x_dir=(0.8541662601625051, 0, 0.5199999999999999), z_dir=(0, -1, 0)) * Cylinder(50, 125, mode=Mode.PRIVATE)
    fillet2_piece_11b = split(fillet2_piece_11b, bisect_by=Plane(origin=(-43.429471079, 68.754666545, -13.5), z_dir=(0, 0, -1)), keep=Keep.TOP, mode=Mode.PRIVATE)
    fillet2_piece_11 = fillet2_piece_11a & fillet2_piece_11b
    add(fillet2_piece_11)

    # CBORE for M4 SHCS2 (through all)
    with Locations(Plane(origin=(0, 0, 16), x_dir=(-1, 0, 0), z_dir=(0, 0, -1))):
        with Locations((0, 55), (0, 15)):
            CounterBoreHole(CBORE_FOR_M4_SHCS2_D / 2, CBORE_FOR_M4_SHCS2_CBORE_D / 2, CBORE_FOR_M4_SHCS2_CBORE_DEPTH)


solid = part.part
